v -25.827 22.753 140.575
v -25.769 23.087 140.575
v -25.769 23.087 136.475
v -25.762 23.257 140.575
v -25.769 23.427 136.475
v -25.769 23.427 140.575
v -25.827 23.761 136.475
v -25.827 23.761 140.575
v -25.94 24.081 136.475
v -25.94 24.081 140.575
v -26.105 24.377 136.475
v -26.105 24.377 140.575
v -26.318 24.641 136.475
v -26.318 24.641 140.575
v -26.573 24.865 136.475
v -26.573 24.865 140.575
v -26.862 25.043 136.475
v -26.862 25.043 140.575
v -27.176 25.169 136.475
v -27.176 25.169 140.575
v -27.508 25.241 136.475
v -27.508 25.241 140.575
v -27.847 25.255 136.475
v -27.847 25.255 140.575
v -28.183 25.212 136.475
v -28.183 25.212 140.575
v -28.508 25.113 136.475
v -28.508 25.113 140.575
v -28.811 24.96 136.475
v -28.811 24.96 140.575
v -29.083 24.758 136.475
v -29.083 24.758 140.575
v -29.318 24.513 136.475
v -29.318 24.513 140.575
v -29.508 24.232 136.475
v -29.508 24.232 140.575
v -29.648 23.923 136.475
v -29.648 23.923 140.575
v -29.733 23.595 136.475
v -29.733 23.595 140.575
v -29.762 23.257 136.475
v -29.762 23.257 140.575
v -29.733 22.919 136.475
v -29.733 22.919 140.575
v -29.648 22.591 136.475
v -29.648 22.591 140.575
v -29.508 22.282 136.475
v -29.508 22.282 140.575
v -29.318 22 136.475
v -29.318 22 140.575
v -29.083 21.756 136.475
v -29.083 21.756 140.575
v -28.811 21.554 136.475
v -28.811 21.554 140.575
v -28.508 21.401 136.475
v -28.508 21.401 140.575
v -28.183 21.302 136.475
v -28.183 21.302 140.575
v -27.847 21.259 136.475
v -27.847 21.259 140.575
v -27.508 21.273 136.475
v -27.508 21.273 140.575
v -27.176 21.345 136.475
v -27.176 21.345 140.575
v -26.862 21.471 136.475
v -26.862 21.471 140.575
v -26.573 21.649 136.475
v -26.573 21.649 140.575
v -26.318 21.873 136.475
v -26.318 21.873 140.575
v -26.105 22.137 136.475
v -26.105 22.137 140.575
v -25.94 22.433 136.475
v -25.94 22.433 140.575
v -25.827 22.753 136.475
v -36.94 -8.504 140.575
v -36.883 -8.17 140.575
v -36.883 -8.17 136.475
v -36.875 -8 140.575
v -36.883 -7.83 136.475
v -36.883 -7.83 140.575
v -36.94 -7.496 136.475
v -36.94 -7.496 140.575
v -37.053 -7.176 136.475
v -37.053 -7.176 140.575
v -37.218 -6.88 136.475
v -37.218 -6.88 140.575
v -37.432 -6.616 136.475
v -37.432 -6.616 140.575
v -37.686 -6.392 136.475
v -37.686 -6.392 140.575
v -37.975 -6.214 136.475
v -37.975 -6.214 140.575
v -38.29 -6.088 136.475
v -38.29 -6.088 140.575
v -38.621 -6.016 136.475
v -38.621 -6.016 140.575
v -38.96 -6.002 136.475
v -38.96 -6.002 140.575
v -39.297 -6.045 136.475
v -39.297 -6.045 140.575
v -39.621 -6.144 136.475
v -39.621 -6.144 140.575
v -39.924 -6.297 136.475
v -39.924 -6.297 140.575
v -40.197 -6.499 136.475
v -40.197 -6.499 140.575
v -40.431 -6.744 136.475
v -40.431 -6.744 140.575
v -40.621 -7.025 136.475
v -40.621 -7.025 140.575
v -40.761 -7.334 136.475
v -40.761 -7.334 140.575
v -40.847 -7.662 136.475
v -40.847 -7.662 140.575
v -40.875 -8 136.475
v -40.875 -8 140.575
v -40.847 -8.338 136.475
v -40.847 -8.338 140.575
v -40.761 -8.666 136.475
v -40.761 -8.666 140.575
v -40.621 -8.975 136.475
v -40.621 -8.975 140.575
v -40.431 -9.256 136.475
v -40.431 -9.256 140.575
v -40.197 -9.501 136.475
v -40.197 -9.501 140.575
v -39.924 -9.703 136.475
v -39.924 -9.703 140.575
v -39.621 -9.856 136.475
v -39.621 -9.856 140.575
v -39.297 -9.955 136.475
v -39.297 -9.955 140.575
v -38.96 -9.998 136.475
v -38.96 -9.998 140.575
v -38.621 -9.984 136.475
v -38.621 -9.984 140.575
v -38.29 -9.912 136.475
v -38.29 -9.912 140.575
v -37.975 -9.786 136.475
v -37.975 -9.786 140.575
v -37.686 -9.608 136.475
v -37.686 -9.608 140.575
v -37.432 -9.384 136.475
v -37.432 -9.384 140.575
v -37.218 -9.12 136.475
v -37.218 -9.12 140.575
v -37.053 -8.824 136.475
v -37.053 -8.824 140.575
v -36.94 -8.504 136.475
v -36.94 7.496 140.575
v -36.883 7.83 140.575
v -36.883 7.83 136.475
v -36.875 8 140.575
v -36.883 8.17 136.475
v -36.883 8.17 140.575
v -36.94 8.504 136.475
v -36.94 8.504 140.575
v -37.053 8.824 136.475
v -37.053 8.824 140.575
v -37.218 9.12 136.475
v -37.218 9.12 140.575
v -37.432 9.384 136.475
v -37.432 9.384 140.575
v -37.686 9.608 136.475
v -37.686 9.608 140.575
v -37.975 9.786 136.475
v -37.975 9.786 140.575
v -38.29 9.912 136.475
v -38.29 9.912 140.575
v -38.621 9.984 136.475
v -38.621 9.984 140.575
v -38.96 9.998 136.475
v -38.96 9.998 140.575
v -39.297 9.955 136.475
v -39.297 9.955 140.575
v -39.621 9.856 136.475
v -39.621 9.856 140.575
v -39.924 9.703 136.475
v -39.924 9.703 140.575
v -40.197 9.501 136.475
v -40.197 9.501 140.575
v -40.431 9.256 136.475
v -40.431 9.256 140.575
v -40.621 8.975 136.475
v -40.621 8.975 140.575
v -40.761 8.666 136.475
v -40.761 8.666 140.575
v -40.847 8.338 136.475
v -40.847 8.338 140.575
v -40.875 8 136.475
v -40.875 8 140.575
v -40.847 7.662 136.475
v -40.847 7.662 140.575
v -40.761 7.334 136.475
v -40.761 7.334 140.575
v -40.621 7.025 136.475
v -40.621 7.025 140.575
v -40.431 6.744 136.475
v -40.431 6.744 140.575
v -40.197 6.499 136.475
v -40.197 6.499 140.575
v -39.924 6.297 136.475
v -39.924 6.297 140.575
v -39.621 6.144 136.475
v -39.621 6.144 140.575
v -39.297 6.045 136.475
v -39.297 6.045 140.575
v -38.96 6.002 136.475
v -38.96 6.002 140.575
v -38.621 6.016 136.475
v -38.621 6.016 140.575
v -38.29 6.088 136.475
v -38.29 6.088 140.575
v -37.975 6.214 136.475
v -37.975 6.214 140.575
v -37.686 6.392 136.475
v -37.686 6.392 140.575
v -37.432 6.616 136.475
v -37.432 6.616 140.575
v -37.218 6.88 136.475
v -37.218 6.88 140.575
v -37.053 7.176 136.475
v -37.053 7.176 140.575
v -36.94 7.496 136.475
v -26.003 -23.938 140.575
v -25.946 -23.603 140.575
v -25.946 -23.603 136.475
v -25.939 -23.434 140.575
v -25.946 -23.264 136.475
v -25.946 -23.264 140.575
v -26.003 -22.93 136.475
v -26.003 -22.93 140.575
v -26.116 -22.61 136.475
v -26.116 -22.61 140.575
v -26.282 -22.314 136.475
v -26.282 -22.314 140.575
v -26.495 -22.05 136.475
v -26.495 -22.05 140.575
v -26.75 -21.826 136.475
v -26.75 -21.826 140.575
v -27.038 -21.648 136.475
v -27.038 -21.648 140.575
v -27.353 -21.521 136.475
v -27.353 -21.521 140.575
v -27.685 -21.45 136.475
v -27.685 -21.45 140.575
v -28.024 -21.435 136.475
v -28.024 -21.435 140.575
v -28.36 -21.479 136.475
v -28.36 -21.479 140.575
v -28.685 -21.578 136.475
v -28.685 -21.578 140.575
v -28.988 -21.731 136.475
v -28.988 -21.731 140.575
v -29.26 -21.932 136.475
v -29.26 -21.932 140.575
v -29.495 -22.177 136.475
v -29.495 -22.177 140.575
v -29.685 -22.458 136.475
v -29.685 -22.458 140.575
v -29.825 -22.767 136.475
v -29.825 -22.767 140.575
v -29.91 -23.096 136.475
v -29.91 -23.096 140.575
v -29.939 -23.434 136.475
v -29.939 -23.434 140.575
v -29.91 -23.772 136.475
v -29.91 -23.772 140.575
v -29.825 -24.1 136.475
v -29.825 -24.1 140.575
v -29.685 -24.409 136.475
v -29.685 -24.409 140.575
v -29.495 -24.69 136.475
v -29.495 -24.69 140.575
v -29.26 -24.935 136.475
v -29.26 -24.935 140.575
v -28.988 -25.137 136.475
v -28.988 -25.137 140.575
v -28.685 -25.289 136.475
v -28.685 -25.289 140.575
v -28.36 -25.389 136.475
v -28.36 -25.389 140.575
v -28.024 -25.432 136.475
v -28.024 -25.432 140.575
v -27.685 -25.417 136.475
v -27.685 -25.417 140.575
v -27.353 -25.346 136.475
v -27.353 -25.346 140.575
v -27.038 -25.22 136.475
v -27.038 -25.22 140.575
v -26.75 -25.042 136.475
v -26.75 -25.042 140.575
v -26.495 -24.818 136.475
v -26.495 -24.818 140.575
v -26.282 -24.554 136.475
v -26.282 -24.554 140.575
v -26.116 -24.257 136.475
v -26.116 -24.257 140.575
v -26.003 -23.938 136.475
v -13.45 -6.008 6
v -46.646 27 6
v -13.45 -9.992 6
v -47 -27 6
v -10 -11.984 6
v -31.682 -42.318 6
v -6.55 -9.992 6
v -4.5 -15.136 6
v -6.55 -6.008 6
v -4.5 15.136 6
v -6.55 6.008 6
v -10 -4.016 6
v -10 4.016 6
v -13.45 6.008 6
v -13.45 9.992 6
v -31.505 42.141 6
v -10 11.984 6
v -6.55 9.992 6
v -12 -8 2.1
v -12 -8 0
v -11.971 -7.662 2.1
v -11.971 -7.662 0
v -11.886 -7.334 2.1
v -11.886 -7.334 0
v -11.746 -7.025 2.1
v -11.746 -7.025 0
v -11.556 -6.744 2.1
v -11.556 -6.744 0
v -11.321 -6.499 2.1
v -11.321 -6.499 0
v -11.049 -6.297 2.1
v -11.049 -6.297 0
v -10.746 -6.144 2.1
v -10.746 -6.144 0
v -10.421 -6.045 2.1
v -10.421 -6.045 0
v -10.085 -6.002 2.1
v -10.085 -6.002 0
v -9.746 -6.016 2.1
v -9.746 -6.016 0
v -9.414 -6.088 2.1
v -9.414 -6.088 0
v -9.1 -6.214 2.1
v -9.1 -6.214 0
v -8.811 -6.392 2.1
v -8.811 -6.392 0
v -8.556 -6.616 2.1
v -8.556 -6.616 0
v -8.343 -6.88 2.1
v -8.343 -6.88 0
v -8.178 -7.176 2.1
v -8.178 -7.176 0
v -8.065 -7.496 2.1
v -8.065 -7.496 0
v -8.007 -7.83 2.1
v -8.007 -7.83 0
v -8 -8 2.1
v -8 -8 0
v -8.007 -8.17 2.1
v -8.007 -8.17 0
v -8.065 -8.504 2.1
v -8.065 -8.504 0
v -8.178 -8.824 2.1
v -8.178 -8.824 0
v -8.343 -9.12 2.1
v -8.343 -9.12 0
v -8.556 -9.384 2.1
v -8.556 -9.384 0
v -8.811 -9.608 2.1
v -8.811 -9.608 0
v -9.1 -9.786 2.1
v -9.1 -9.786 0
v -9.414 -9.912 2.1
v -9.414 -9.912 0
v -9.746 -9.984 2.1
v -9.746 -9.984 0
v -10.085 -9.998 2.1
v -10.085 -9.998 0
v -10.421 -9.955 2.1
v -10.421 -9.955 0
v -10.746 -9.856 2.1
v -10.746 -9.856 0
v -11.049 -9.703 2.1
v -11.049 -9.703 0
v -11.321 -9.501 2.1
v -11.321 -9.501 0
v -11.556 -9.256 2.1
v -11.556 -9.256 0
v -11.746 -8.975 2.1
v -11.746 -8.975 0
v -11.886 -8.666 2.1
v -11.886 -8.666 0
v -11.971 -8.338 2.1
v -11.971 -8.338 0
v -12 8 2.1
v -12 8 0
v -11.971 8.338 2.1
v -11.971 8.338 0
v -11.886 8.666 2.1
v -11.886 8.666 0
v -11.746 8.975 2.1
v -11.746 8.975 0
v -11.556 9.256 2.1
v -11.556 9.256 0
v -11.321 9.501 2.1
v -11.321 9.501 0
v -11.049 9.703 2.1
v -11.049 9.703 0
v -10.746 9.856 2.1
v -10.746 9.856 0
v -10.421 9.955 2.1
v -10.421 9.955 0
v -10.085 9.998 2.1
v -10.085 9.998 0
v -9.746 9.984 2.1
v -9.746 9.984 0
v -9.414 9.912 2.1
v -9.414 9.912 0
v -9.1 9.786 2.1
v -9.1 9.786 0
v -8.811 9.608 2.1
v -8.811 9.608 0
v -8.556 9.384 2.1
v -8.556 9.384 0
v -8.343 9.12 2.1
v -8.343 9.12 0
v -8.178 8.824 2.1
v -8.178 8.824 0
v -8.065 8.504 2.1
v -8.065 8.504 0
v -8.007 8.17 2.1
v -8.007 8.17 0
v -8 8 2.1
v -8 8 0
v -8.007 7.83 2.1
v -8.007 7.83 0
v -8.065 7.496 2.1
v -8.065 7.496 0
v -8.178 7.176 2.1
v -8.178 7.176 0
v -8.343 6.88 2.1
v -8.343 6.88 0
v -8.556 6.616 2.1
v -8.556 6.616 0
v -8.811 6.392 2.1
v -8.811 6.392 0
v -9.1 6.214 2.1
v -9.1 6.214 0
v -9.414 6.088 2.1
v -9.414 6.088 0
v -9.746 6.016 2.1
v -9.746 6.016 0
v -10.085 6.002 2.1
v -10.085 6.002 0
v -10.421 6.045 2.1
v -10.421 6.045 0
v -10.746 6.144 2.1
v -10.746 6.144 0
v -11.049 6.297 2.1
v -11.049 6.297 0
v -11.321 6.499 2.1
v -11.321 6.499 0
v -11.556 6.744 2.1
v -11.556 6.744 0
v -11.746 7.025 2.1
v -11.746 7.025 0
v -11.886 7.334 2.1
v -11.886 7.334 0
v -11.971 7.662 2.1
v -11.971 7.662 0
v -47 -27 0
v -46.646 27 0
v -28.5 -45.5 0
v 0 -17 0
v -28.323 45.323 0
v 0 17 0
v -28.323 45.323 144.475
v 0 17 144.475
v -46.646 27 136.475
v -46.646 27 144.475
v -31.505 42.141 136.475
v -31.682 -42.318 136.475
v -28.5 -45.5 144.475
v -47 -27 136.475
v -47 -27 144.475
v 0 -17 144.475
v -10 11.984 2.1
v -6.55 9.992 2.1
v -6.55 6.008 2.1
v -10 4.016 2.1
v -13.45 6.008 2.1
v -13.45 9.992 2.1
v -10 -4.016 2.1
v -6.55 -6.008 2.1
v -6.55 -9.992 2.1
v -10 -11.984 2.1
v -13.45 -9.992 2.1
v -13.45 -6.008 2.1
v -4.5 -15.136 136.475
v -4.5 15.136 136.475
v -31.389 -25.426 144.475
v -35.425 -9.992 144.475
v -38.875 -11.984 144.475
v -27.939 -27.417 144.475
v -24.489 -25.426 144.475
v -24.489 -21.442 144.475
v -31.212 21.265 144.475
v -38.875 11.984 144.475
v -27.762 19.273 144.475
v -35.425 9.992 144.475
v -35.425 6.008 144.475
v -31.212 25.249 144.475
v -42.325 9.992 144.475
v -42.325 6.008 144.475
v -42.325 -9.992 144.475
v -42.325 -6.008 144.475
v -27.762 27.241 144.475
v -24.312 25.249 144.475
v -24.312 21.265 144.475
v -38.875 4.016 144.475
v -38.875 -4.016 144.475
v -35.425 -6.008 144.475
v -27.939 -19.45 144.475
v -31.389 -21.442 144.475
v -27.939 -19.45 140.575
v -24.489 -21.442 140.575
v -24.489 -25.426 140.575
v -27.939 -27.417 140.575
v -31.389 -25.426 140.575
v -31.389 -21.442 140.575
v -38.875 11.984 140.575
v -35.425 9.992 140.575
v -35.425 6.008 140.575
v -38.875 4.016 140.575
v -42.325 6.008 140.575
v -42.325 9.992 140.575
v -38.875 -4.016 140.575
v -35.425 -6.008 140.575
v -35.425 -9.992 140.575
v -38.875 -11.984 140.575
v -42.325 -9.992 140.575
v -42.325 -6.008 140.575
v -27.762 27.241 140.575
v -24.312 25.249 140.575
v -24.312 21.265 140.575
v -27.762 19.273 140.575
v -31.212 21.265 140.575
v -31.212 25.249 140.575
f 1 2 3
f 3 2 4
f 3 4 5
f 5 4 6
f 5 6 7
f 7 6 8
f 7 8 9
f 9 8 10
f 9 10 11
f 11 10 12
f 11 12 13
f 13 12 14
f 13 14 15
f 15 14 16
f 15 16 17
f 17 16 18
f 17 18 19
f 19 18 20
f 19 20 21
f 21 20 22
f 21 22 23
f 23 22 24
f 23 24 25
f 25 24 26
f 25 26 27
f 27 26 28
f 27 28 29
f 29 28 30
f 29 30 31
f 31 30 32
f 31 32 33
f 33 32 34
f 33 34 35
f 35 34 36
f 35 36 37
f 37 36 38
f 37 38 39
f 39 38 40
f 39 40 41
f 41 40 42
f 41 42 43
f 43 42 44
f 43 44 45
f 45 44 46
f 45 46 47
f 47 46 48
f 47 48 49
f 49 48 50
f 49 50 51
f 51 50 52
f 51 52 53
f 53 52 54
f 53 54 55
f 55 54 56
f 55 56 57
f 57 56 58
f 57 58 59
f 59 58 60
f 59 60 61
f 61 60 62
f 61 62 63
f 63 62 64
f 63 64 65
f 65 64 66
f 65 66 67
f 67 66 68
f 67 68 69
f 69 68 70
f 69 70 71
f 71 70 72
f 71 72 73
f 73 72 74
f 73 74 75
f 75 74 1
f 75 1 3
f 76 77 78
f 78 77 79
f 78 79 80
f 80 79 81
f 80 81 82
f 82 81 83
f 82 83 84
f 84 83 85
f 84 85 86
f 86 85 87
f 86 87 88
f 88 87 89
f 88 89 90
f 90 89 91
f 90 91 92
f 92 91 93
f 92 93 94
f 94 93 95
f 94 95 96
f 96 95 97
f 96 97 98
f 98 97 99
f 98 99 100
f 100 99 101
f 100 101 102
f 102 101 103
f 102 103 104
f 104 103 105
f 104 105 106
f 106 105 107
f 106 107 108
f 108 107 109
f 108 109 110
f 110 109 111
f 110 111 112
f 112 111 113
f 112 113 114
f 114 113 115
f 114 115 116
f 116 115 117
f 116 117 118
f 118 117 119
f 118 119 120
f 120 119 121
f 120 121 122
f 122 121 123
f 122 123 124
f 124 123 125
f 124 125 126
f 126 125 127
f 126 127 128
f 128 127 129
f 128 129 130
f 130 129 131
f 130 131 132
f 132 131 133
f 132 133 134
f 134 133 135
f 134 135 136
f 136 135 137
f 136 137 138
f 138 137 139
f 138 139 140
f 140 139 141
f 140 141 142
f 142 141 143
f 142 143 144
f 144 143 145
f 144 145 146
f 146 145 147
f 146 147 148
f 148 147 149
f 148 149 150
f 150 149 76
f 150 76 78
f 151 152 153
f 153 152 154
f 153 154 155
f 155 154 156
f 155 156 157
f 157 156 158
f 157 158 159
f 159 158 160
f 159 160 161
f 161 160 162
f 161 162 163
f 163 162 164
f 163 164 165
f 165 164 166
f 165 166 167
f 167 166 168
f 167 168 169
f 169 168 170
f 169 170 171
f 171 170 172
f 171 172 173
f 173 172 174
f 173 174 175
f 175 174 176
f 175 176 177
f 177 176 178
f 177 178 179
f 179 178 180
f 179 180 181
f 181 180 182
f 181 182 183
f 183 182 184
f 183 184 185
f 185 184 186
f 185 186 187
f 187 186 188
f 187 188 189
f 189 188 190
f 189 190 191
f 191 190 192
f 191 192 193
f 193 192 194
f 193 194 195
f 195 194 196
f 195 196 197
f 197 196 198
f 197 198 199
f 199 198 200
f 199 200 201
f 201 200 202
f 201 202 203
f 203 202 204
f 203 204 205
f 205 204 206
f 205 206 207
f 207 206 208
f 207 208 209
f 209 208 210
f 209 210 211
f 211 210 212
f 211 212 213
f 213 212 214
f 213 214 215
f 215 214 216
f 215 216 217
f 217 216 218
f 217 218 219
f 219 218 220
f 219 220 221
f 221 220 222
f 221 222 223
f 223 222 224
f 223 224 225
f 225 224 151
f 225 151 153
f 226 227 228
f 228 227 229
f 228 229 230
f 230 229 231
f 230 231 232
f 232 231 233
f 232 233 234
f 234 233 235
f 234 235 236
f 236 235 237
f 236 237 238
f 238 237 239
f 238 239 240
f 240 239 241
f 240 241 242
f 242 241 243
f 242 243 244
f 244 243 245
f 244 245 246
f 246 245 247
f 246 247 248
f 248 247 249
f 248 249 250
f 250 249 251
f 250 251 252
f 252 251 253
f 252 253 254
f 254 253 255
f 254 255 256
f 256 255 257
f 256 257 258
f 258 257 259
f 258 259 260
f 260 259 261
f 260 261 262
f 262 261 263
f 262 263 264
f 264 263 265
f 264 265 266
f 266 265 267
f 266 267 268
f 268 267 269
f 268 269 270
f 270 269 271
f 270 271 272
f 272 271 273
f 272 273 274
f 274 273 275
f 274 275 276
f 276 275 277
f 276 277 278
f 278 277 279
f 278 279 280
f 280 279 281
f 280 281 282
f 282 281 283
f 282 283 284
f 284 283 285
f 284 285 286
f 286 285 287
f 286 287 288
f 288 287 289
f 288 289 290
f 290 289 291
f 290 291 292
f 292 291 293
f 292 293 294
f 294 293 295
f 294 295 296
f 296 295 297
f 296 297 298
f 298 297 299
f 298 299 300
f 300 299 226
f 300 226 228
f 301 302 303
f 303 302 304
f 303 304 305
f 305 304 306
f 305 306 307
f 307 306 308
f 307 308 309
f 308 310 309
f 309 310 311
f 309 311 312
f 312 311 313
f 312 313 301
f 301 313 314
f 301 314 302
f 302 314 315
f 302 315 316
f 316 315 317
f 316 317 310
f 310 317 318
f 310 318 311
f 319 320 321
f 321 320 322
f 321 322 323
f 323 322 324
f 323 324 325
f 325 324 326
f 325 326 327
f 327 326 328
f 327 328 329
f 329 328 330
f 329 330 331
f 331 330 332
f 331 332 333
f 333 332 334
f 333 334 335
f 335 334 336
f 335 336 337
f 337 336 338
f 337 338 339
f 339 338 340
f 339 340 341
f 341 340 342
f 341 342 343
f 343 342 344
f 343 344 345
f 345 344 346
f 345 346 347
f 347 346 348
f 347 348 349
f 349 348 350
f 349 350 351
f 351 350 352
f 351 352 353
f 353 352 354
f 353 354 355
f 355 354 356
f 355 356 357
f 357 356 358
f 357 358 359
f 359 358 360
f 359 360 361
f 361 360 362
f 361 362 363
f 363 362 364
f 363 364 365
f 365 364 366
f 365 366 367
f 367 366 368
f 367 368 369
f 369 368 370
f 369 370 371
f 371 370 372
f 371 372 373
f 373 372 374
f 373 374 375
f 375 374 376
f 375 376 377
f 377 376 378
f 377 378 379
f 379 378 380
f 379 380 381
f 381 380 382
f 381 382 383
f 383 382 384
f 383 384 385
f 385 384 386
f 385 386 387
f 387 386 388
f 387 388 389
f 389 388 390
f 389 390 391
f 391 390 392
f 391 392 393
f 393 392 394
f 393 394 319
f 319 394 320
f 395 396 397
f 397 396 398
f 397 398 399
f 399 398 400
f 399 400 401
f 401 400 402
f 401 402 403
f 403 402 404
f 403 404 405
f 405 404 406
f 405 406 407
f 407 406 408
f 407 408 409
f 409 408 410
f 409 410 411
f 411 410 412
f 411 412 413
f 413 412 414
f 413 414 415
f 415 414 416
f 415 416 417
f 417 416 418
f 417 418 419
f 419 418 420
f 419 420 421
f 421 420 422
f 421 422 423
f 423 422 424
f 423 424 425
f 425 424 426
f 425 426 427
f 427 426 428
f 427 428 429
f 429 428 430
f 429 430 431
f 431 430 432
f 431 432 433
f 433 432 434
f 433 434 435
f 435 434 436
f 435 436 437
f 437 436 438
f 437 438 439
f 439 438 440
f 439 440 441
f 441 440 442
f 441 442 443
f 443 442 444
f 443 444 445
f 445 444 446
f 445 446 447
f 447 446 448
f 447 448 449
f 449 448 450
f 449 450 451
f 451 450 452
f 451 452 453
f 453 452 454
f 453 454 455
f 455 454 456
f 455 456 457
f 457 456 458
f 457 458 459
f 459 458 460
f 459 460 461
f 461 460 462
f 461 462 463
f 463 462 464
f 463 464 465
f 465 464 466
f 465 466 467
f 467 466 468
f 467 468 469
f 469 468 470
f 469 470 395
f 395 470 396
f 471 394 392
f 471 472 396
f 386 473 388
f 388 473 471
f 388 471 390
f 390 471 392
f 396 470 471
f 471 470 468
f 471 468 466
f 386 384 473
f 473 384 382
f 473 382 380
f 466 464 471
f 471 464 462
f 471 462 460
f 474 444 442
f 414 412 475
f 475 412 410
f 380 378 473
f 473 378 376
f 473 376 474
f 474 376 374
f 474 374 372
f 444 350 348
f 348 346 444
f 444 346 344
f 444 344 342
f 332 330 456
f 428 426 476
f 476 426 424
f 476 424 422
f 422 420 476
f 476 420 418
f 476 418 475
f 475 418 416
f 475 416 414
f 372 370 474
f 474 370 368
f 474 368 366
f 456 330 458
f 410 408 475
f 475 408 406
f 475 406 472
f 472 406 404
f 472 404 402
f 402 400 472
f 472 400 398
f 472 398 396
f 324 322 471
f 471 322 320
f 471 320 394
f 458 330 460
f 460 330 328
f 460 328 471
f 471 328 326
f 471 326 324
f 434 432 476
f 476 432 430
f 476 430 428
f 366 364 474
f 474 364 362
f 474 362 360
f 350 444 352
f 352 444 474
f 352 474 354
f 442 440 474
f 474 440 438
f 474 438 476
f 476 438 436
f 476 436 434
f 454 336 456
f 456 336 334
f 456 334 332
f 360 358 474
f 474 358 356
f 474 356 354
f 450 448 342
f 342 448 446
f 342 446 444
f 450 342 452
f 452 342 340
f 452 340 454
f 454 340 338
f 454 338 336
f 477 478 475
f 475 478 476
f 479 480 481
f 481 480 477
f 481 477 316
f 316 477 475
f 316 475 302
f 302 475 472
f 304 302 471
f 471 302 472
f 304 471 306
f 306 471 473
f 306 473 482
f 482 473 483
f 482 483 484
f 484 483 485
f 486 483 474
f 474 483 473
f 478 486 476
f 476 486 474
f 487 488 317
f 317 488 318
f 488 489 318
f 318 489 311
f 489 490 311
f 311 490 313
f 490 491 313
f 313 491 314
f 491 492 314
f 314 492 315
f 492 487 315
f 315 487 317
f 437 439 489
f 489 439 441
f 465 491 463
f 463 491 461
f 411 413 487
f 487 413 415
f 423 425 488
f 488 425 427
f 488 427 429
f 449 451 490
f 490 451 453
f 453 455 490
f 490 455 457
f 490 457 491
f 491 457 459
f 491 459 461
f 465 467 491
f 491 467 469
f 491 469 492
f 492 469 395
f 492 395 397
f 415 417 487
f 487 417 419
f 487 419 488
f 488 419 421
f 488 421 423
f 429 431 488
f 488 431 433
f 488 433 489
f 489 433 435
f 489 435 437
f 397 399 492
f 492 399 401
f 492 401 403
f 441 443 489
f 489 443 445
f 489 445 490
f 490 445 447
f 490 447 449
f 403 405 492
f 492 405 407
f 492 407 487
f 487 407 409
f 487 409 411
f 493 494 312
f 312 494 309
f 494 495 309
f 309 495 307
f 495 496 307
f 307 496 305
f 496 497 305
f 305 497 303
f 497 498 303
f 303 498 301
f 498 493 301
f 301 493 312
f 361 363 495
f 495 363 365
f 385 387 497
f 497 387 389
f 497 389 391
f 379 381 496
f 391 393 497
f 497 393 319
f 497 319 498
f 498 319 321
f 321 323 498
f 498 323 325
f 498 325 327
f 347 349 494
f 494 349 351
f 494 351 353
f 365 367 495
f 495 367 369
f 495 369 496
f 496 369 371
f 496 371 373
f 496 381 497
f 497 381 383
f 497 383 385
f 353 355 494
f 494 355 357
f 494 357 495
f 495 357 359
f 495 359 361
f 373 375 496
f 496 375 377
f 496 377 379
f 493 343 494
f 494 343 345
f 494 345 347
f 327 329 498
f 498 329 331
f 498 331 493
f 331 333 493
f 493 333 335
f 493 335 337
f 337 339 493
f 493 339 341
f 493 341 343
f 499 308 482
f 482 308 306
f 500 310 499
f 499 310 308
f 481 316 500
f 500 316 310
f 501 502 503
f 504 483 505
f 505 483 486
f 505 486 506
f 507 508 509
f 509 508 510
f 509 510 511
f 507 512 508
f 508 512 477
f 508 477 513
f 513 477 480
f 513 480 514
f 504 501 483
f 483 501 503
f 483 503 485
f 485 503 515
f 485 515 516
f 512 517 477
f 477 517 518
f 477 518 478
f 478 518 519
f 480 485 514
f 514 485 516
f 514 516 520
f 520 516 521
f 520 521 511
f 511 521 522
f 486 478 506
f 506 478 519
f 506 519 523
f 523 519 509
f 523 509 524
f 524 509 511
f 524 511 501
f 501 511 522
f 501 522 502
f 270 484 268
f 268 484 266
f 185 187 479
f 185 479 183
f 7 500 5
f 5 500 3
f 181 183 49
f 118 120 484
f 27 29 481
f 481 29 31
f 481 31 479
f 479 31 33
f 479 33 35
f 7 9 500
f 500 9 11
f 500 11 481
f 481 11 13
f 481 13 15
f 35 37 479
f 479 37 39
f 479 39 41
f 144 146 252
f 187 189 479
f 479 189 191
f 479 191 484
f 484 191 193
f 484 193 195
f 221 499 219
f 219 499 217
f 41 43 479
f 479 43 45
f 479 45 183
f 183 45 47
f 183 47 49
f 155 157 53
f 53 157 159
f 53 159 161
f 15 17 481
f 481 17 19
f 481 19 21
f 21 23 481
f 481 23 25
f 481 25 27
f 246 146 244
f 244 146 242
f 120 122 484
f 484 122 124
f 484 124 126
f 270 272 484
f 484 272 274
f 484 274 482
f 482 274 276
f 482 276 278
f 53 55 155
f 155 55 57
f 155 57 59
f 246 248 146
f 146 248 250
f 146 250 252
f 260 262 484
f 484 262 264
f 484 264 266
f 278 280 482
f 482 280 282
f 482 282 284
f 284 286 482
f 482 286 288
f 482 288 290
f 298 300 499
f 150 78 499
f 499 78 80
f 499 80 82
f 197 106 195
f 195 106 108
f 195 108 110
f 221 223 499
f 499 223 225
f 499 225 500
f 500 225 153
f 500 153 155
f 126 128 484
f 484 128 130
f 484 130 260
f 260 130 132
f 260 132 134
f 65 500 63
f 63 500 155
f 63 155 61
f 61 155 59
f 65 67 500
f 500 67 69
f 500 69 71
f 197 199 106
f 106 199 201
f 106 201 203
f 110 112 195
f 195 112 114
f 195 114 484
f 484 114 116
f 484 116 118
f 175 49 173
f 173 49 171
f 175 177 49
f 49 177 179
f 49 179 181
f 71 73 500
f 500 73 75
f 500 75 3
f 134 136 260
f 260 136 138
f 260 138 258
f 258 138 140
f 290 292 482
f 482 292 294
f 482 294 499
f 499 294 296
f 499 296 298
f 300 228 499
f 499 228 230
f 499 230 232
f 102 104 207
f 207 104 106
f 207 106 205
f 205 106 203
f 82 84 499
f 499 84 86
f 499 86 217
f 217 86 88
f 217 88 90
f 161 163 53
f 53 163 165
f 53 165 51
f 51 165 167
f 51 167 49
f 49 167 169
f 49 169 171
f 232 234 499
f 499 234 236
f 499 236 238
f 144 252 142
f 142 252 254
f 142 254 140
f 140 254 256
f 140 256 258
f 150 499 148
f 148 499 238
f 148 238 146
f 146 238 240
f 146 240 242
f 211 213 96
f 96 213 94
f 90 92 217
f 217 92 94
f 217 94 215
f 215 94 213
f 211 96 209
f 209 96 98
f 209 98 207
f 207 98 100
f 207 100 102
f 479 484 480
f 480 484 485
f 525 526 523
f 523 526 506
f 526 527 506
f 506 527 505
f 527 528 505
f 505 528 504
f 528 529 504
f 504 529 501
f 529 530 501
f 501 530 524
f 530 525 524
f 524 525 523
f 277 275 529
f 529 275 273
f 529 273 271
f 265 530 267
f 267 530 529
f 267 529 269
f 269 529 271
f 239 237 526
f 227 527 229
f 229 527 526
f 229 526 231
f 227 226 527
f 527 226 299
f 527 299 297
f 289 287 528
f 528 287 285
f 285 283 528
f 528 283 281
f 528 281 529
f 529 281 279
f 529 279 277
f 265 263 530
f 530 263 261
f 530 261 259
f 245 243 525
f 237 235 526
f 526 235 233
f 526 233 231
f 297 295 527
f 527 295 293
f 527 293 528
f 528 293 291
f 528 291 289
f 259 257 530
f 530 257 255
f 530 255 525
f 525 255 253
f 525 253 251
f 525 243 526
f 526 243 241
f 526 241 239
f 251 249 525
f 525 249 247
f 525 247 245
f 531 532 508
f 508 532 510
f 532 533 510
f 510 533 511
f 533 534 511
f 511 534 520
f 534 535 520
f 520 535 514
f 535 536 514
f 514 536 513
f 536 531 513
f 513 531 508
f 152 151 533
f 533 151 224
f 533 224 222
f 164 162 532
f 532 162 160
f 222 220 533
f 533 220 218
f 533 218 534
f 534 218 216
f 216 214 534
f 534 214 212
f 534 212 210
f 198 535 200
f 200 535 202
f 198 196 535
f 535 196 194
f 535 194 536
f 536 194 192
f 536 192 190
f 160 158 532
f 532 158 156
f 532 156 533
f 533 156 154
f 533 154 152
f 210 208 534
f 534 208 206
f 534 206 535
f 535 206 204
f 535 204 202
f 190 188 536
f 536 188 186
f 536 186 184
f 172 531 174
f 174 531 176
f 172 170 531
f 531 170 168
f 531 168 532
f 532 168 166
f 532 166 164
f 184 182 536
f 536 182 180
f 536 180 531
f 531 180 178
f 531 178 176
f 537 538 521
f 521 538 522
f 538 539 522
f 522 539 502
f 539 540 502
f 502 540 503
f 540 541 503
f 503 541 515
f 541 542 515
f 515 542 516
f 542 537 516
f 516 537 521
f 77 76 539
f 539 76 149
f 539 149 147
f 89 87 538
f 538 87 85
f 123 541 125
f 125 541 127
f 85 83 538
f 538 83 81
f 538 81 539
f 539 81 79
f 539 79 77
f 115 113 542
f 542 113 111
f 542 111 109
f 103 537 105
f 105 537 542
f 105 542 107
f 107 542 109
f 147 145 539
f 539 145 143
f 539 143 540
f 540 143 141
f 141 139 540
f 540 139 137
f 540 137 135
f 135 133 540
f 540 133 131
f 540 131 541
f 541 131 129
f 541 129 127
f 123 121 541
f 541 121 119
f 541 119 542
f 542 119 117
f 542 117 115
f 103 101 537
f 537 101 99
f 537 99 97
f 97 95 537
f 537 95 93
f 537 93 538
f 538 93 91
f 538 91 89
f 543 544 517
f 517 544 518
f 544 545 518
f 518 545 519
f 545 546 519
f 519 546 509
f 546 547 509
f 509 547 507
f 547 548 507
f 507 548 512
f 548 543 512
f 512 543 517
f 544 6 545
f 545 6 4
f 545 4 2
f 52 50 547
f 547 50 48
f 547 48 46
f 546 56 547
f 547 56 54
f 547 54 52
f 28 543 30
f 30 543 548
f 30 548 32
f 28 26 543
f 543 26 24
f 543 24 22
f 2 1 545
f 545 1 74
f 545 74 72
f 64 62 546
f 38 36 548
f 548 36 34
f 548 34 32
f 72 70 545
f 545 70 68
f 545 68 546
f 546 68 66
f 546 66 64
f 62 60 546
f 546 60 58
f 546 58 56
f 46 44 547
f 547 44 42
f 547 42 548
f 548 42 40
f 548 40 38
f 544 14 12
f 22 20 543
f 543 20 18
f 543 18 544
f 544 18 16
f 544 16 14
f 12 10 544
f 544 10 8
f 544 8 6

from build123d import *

# Parameters (mm, degrees)
SKETCH1_R                      = 2
BOSS_EXTRUDE1_DEPTH            = 6
CUT_EXTRUDE1_DEPTH             = 3.9
BOSS_EXTRUDE2_DEPTH            = 138.475201729
BOSS_EXTRUDE3_DEPTH            = 8
CUT_EXTRUDE2_REACH             = 160.595
SKETCH5_R                      = 2
CUT_EXTRUDE2_DIRECTION_2_DEPTH = 159.594869272
CUT_EXTRUDE3_DEPTH             = 3.9


with BuildPart() as part:
    # Sketch1 → Boss-Extrude1 (new body)
    with BuildSketch(Plane.XY):
        Polygon((0, 17), (0, -17), (-10, -27), (-28.499995142, -45.499995142), (-46.999990284, -27), (-46.646446609, 27), (-28.323223305, 45.323223305), (-10, 27), align=None)
        with Locations((-10, -8)):
            Circle(SKETCH1_R, mode=Mode.SUBTRACT)
        with Locations((-10, 8)):
            Circle(SKETCH1_R, mode=Mode.SUBTRACT)
    extrude(amount=BOSS_EXTRUDE1_DEPTH)

    # Sketch2 → Cut-Extrude1 (cut)
    with BuildSketch(Plane.XY.offset(6)):
        Polygon((-10, 11.983716857), (-13.45, 9.991858429), (-13.45, 6.008141571), (-10, 4.016283143), (-6.55, 6.008141571), (-6.55, 9.991858429), align=None)
        Polygon((-10, -4.016283143), (-13.45, -6.008141571), (-13.45, -9.991858429), (-10, -11.983716857), (-6.55, -9.991858429), (-6.55, -6.008141571), align=None)
    extrude(amount=-CUT_EXTRUDE1_DEPTH, mode=Mode.SUBTRACT)

    # Sketch3 → Boss-Extrude2 (add)
    with BuildSketch(Plane.XY.offset(6)):
        Polygon((-28.499995142, -39.136034112), (-4.5, -15.136038969), (-4.5, 15.136038969), (-28.323223305, 38.959262274), (-31.50520382, 42.141242789), (-28.323223305, 45.323223305), (0, 17), (0, -17), (-28.499995142, -45.499995142), (-31.681975658, -42.318014627), align=None)
    extrude(amount=BOSS_EXTRUDE2_DEPTH)

    # Sketch4 → Boss-Extrude3 (add)
    with BuildSketch(Plane.XY.offset(144.475201729)):
        Polygon((0, 17), (0, -17), (-28.499995142, -45.499995142), (-46.999990284, -27), (-46.646446609, 27), (-28.323223305, 45.323223305), align=None)
    extrude(amount=-BOSS_EXTRUDE3_DEPTH)

    # Sketch5 → Cut-Extrude2 (cut, up to next)
    with BuildSketch(Plane.XY.offset(144.475201729), mode=Mode.PRIVATE) as cut_extrude2_sk1:
        with Locations(Location((-27.938888553, -23.433684733, 0), (0, 0, 180))):
            Circle(SKETCH5_R)
    cut_extrude2_tool1 = extrude(cut_extrude2_sk1.sketch, amount=-CUT_EXTRUDE2_REACH, mode=Mode.PRIVATE) & part.part
    # Sketch5 → Cut-Extrude2 (cut, up to next)
    with BuildSketch(Plane.XY.offset(144.475201729), mode=Mode.PRIVATE) as cut_extrude2_sk2:
        with Locations(Location((-27.762116716, 23.256912896, 0), (0, 0, 180))):
            Circle(SKETCH5_R)
    cut_extrude2_tool2 = extrude(cut_extrude2_sk2.sketch, amount=-CUT_EXTRUDE2_REACH, mode=Mode.PRIVATE) & part.part
    # Sketch5 → Cut-Extrude2 (cut, up to next)
    with BuildSketch(Plane.XY.offset(144.475201729), mode=Mode.PRIVATE) as cut_extrude2_sk3:
        with Locations(Location((-38.875423831, -8, 0), (0, 0, 180))):
            Circle(SKETCH5_R)
    cut_extrude2_tool3 = extrude(cut_extrude2_sk3.sketch, amount=-CUT_EXTRUDE2_REACH, mode=Mode.PRIVATE) & part.part
    # Sketch5 → Cut-Extrude2 (cut, up to next)
    with BuildSketch(Plane.XY.offset(144.475201729), mode=Mode.PRIVATE) as cut_extrude2_sk4:
        with Locations(Location((-38.875423831, 8, 0), (0, 0, 180))):
            Circle(SKETCH5_R)
    cut_extrude2_tool4 = extrude(cut_extrude2_sk4.sketch, amount=-CUT_EXTRUDE2_REACH, mode=Mode.PRIVATE) & part.part
    add(cut_extrude2_tool1.solids().sort_by_distance((-27.938889, -23.433685, 144.475202))[0], mode=Mode.SUBTRACT)
    add(cut_extrude2_tool2.solids().sort_by_distance((-27.762117, 23.256913, 144.475202))[0], mode=Mode.SUBTRACT)
    add(cut_extrude2_tool3.solids().sort_by_distance((-38.875424, -8, 144.475202))[0], mode=Mode.SUBTRACT)
    add(cut_extrude2_tool4.solids().sort_by_distance((-38.875424, 8, 144.475202))[0], mode=Mode.SUBTRACT)

    # Sketch5 → Cut-Extrude2 direction 2 (cut)
    with BuildSketch(Plane.XY.offset(144.475201729)):
        with Locations(Location((-27.938888553, -23.433684733, 0), (0, 0, 180))):
            Circle(SKETCH5_R)
        with Locations(Location((-27.762116716, 23.256912896, 0), (0, 0, 180))):
            Circle(SKETCH5_R)
        with Locations(Location((-38.875423831, -8, 0), (0, 0, 180))):
            Circle(SKETCH5_R)
        with Locations(Location((-38.875423831, 8, 0), (0, 0, 180))):
            Circle(SKETCH5_R)
    extrude(amount=CUT_EXTRUDE2_DIRECTION_2_DEPTH, mode=Mode.SUBTRACT)

    # Sketch6 → Cut-Extrude3 (cut)
    with BuildSketch(Plane.XY.offset(144.475201729)):
        Polygon((-27.762116716, 27.240629753), (-31.212116716, 25.248771324), (-31.212116716, 21.265054467), (-27.762116716, 19.273196038), (-24.312116716, 21.265054467), (-24.312116716, 25.248771324), align=None)
        Polygon((-38.875423831, 11.983716857), (-42.325423831, 9.991858429), (-42.325423831, 6.008141571), (-38.875423831, 4.016283143), (-35.425423831, 6.008141571), (-35.425423831, 9.991858429), align=None)
        Polygon((-38.875423831, -4.016283143), (-42.325423831, -6.008141571), (-42.325423831, -9.991858429), (-38.875423831, -11.983716857), (-35.425423831, -9.991858429), (-35.425423831, -6.008141571), align=None)
        Polygon((-27.938888553, -19.449967876), (-31.388888553, -21.441826304), (-31.388888553, -25.425543162), (-27.938888553, -27.417401591), (-24.488888553, -25.425543162), (-24.488888553, -21.441826304), align=None)
    extrude(amount=-CUT_EXTRUDE3_DEPTH, mode=Mode.SUBTRACT)


solid = part.part
